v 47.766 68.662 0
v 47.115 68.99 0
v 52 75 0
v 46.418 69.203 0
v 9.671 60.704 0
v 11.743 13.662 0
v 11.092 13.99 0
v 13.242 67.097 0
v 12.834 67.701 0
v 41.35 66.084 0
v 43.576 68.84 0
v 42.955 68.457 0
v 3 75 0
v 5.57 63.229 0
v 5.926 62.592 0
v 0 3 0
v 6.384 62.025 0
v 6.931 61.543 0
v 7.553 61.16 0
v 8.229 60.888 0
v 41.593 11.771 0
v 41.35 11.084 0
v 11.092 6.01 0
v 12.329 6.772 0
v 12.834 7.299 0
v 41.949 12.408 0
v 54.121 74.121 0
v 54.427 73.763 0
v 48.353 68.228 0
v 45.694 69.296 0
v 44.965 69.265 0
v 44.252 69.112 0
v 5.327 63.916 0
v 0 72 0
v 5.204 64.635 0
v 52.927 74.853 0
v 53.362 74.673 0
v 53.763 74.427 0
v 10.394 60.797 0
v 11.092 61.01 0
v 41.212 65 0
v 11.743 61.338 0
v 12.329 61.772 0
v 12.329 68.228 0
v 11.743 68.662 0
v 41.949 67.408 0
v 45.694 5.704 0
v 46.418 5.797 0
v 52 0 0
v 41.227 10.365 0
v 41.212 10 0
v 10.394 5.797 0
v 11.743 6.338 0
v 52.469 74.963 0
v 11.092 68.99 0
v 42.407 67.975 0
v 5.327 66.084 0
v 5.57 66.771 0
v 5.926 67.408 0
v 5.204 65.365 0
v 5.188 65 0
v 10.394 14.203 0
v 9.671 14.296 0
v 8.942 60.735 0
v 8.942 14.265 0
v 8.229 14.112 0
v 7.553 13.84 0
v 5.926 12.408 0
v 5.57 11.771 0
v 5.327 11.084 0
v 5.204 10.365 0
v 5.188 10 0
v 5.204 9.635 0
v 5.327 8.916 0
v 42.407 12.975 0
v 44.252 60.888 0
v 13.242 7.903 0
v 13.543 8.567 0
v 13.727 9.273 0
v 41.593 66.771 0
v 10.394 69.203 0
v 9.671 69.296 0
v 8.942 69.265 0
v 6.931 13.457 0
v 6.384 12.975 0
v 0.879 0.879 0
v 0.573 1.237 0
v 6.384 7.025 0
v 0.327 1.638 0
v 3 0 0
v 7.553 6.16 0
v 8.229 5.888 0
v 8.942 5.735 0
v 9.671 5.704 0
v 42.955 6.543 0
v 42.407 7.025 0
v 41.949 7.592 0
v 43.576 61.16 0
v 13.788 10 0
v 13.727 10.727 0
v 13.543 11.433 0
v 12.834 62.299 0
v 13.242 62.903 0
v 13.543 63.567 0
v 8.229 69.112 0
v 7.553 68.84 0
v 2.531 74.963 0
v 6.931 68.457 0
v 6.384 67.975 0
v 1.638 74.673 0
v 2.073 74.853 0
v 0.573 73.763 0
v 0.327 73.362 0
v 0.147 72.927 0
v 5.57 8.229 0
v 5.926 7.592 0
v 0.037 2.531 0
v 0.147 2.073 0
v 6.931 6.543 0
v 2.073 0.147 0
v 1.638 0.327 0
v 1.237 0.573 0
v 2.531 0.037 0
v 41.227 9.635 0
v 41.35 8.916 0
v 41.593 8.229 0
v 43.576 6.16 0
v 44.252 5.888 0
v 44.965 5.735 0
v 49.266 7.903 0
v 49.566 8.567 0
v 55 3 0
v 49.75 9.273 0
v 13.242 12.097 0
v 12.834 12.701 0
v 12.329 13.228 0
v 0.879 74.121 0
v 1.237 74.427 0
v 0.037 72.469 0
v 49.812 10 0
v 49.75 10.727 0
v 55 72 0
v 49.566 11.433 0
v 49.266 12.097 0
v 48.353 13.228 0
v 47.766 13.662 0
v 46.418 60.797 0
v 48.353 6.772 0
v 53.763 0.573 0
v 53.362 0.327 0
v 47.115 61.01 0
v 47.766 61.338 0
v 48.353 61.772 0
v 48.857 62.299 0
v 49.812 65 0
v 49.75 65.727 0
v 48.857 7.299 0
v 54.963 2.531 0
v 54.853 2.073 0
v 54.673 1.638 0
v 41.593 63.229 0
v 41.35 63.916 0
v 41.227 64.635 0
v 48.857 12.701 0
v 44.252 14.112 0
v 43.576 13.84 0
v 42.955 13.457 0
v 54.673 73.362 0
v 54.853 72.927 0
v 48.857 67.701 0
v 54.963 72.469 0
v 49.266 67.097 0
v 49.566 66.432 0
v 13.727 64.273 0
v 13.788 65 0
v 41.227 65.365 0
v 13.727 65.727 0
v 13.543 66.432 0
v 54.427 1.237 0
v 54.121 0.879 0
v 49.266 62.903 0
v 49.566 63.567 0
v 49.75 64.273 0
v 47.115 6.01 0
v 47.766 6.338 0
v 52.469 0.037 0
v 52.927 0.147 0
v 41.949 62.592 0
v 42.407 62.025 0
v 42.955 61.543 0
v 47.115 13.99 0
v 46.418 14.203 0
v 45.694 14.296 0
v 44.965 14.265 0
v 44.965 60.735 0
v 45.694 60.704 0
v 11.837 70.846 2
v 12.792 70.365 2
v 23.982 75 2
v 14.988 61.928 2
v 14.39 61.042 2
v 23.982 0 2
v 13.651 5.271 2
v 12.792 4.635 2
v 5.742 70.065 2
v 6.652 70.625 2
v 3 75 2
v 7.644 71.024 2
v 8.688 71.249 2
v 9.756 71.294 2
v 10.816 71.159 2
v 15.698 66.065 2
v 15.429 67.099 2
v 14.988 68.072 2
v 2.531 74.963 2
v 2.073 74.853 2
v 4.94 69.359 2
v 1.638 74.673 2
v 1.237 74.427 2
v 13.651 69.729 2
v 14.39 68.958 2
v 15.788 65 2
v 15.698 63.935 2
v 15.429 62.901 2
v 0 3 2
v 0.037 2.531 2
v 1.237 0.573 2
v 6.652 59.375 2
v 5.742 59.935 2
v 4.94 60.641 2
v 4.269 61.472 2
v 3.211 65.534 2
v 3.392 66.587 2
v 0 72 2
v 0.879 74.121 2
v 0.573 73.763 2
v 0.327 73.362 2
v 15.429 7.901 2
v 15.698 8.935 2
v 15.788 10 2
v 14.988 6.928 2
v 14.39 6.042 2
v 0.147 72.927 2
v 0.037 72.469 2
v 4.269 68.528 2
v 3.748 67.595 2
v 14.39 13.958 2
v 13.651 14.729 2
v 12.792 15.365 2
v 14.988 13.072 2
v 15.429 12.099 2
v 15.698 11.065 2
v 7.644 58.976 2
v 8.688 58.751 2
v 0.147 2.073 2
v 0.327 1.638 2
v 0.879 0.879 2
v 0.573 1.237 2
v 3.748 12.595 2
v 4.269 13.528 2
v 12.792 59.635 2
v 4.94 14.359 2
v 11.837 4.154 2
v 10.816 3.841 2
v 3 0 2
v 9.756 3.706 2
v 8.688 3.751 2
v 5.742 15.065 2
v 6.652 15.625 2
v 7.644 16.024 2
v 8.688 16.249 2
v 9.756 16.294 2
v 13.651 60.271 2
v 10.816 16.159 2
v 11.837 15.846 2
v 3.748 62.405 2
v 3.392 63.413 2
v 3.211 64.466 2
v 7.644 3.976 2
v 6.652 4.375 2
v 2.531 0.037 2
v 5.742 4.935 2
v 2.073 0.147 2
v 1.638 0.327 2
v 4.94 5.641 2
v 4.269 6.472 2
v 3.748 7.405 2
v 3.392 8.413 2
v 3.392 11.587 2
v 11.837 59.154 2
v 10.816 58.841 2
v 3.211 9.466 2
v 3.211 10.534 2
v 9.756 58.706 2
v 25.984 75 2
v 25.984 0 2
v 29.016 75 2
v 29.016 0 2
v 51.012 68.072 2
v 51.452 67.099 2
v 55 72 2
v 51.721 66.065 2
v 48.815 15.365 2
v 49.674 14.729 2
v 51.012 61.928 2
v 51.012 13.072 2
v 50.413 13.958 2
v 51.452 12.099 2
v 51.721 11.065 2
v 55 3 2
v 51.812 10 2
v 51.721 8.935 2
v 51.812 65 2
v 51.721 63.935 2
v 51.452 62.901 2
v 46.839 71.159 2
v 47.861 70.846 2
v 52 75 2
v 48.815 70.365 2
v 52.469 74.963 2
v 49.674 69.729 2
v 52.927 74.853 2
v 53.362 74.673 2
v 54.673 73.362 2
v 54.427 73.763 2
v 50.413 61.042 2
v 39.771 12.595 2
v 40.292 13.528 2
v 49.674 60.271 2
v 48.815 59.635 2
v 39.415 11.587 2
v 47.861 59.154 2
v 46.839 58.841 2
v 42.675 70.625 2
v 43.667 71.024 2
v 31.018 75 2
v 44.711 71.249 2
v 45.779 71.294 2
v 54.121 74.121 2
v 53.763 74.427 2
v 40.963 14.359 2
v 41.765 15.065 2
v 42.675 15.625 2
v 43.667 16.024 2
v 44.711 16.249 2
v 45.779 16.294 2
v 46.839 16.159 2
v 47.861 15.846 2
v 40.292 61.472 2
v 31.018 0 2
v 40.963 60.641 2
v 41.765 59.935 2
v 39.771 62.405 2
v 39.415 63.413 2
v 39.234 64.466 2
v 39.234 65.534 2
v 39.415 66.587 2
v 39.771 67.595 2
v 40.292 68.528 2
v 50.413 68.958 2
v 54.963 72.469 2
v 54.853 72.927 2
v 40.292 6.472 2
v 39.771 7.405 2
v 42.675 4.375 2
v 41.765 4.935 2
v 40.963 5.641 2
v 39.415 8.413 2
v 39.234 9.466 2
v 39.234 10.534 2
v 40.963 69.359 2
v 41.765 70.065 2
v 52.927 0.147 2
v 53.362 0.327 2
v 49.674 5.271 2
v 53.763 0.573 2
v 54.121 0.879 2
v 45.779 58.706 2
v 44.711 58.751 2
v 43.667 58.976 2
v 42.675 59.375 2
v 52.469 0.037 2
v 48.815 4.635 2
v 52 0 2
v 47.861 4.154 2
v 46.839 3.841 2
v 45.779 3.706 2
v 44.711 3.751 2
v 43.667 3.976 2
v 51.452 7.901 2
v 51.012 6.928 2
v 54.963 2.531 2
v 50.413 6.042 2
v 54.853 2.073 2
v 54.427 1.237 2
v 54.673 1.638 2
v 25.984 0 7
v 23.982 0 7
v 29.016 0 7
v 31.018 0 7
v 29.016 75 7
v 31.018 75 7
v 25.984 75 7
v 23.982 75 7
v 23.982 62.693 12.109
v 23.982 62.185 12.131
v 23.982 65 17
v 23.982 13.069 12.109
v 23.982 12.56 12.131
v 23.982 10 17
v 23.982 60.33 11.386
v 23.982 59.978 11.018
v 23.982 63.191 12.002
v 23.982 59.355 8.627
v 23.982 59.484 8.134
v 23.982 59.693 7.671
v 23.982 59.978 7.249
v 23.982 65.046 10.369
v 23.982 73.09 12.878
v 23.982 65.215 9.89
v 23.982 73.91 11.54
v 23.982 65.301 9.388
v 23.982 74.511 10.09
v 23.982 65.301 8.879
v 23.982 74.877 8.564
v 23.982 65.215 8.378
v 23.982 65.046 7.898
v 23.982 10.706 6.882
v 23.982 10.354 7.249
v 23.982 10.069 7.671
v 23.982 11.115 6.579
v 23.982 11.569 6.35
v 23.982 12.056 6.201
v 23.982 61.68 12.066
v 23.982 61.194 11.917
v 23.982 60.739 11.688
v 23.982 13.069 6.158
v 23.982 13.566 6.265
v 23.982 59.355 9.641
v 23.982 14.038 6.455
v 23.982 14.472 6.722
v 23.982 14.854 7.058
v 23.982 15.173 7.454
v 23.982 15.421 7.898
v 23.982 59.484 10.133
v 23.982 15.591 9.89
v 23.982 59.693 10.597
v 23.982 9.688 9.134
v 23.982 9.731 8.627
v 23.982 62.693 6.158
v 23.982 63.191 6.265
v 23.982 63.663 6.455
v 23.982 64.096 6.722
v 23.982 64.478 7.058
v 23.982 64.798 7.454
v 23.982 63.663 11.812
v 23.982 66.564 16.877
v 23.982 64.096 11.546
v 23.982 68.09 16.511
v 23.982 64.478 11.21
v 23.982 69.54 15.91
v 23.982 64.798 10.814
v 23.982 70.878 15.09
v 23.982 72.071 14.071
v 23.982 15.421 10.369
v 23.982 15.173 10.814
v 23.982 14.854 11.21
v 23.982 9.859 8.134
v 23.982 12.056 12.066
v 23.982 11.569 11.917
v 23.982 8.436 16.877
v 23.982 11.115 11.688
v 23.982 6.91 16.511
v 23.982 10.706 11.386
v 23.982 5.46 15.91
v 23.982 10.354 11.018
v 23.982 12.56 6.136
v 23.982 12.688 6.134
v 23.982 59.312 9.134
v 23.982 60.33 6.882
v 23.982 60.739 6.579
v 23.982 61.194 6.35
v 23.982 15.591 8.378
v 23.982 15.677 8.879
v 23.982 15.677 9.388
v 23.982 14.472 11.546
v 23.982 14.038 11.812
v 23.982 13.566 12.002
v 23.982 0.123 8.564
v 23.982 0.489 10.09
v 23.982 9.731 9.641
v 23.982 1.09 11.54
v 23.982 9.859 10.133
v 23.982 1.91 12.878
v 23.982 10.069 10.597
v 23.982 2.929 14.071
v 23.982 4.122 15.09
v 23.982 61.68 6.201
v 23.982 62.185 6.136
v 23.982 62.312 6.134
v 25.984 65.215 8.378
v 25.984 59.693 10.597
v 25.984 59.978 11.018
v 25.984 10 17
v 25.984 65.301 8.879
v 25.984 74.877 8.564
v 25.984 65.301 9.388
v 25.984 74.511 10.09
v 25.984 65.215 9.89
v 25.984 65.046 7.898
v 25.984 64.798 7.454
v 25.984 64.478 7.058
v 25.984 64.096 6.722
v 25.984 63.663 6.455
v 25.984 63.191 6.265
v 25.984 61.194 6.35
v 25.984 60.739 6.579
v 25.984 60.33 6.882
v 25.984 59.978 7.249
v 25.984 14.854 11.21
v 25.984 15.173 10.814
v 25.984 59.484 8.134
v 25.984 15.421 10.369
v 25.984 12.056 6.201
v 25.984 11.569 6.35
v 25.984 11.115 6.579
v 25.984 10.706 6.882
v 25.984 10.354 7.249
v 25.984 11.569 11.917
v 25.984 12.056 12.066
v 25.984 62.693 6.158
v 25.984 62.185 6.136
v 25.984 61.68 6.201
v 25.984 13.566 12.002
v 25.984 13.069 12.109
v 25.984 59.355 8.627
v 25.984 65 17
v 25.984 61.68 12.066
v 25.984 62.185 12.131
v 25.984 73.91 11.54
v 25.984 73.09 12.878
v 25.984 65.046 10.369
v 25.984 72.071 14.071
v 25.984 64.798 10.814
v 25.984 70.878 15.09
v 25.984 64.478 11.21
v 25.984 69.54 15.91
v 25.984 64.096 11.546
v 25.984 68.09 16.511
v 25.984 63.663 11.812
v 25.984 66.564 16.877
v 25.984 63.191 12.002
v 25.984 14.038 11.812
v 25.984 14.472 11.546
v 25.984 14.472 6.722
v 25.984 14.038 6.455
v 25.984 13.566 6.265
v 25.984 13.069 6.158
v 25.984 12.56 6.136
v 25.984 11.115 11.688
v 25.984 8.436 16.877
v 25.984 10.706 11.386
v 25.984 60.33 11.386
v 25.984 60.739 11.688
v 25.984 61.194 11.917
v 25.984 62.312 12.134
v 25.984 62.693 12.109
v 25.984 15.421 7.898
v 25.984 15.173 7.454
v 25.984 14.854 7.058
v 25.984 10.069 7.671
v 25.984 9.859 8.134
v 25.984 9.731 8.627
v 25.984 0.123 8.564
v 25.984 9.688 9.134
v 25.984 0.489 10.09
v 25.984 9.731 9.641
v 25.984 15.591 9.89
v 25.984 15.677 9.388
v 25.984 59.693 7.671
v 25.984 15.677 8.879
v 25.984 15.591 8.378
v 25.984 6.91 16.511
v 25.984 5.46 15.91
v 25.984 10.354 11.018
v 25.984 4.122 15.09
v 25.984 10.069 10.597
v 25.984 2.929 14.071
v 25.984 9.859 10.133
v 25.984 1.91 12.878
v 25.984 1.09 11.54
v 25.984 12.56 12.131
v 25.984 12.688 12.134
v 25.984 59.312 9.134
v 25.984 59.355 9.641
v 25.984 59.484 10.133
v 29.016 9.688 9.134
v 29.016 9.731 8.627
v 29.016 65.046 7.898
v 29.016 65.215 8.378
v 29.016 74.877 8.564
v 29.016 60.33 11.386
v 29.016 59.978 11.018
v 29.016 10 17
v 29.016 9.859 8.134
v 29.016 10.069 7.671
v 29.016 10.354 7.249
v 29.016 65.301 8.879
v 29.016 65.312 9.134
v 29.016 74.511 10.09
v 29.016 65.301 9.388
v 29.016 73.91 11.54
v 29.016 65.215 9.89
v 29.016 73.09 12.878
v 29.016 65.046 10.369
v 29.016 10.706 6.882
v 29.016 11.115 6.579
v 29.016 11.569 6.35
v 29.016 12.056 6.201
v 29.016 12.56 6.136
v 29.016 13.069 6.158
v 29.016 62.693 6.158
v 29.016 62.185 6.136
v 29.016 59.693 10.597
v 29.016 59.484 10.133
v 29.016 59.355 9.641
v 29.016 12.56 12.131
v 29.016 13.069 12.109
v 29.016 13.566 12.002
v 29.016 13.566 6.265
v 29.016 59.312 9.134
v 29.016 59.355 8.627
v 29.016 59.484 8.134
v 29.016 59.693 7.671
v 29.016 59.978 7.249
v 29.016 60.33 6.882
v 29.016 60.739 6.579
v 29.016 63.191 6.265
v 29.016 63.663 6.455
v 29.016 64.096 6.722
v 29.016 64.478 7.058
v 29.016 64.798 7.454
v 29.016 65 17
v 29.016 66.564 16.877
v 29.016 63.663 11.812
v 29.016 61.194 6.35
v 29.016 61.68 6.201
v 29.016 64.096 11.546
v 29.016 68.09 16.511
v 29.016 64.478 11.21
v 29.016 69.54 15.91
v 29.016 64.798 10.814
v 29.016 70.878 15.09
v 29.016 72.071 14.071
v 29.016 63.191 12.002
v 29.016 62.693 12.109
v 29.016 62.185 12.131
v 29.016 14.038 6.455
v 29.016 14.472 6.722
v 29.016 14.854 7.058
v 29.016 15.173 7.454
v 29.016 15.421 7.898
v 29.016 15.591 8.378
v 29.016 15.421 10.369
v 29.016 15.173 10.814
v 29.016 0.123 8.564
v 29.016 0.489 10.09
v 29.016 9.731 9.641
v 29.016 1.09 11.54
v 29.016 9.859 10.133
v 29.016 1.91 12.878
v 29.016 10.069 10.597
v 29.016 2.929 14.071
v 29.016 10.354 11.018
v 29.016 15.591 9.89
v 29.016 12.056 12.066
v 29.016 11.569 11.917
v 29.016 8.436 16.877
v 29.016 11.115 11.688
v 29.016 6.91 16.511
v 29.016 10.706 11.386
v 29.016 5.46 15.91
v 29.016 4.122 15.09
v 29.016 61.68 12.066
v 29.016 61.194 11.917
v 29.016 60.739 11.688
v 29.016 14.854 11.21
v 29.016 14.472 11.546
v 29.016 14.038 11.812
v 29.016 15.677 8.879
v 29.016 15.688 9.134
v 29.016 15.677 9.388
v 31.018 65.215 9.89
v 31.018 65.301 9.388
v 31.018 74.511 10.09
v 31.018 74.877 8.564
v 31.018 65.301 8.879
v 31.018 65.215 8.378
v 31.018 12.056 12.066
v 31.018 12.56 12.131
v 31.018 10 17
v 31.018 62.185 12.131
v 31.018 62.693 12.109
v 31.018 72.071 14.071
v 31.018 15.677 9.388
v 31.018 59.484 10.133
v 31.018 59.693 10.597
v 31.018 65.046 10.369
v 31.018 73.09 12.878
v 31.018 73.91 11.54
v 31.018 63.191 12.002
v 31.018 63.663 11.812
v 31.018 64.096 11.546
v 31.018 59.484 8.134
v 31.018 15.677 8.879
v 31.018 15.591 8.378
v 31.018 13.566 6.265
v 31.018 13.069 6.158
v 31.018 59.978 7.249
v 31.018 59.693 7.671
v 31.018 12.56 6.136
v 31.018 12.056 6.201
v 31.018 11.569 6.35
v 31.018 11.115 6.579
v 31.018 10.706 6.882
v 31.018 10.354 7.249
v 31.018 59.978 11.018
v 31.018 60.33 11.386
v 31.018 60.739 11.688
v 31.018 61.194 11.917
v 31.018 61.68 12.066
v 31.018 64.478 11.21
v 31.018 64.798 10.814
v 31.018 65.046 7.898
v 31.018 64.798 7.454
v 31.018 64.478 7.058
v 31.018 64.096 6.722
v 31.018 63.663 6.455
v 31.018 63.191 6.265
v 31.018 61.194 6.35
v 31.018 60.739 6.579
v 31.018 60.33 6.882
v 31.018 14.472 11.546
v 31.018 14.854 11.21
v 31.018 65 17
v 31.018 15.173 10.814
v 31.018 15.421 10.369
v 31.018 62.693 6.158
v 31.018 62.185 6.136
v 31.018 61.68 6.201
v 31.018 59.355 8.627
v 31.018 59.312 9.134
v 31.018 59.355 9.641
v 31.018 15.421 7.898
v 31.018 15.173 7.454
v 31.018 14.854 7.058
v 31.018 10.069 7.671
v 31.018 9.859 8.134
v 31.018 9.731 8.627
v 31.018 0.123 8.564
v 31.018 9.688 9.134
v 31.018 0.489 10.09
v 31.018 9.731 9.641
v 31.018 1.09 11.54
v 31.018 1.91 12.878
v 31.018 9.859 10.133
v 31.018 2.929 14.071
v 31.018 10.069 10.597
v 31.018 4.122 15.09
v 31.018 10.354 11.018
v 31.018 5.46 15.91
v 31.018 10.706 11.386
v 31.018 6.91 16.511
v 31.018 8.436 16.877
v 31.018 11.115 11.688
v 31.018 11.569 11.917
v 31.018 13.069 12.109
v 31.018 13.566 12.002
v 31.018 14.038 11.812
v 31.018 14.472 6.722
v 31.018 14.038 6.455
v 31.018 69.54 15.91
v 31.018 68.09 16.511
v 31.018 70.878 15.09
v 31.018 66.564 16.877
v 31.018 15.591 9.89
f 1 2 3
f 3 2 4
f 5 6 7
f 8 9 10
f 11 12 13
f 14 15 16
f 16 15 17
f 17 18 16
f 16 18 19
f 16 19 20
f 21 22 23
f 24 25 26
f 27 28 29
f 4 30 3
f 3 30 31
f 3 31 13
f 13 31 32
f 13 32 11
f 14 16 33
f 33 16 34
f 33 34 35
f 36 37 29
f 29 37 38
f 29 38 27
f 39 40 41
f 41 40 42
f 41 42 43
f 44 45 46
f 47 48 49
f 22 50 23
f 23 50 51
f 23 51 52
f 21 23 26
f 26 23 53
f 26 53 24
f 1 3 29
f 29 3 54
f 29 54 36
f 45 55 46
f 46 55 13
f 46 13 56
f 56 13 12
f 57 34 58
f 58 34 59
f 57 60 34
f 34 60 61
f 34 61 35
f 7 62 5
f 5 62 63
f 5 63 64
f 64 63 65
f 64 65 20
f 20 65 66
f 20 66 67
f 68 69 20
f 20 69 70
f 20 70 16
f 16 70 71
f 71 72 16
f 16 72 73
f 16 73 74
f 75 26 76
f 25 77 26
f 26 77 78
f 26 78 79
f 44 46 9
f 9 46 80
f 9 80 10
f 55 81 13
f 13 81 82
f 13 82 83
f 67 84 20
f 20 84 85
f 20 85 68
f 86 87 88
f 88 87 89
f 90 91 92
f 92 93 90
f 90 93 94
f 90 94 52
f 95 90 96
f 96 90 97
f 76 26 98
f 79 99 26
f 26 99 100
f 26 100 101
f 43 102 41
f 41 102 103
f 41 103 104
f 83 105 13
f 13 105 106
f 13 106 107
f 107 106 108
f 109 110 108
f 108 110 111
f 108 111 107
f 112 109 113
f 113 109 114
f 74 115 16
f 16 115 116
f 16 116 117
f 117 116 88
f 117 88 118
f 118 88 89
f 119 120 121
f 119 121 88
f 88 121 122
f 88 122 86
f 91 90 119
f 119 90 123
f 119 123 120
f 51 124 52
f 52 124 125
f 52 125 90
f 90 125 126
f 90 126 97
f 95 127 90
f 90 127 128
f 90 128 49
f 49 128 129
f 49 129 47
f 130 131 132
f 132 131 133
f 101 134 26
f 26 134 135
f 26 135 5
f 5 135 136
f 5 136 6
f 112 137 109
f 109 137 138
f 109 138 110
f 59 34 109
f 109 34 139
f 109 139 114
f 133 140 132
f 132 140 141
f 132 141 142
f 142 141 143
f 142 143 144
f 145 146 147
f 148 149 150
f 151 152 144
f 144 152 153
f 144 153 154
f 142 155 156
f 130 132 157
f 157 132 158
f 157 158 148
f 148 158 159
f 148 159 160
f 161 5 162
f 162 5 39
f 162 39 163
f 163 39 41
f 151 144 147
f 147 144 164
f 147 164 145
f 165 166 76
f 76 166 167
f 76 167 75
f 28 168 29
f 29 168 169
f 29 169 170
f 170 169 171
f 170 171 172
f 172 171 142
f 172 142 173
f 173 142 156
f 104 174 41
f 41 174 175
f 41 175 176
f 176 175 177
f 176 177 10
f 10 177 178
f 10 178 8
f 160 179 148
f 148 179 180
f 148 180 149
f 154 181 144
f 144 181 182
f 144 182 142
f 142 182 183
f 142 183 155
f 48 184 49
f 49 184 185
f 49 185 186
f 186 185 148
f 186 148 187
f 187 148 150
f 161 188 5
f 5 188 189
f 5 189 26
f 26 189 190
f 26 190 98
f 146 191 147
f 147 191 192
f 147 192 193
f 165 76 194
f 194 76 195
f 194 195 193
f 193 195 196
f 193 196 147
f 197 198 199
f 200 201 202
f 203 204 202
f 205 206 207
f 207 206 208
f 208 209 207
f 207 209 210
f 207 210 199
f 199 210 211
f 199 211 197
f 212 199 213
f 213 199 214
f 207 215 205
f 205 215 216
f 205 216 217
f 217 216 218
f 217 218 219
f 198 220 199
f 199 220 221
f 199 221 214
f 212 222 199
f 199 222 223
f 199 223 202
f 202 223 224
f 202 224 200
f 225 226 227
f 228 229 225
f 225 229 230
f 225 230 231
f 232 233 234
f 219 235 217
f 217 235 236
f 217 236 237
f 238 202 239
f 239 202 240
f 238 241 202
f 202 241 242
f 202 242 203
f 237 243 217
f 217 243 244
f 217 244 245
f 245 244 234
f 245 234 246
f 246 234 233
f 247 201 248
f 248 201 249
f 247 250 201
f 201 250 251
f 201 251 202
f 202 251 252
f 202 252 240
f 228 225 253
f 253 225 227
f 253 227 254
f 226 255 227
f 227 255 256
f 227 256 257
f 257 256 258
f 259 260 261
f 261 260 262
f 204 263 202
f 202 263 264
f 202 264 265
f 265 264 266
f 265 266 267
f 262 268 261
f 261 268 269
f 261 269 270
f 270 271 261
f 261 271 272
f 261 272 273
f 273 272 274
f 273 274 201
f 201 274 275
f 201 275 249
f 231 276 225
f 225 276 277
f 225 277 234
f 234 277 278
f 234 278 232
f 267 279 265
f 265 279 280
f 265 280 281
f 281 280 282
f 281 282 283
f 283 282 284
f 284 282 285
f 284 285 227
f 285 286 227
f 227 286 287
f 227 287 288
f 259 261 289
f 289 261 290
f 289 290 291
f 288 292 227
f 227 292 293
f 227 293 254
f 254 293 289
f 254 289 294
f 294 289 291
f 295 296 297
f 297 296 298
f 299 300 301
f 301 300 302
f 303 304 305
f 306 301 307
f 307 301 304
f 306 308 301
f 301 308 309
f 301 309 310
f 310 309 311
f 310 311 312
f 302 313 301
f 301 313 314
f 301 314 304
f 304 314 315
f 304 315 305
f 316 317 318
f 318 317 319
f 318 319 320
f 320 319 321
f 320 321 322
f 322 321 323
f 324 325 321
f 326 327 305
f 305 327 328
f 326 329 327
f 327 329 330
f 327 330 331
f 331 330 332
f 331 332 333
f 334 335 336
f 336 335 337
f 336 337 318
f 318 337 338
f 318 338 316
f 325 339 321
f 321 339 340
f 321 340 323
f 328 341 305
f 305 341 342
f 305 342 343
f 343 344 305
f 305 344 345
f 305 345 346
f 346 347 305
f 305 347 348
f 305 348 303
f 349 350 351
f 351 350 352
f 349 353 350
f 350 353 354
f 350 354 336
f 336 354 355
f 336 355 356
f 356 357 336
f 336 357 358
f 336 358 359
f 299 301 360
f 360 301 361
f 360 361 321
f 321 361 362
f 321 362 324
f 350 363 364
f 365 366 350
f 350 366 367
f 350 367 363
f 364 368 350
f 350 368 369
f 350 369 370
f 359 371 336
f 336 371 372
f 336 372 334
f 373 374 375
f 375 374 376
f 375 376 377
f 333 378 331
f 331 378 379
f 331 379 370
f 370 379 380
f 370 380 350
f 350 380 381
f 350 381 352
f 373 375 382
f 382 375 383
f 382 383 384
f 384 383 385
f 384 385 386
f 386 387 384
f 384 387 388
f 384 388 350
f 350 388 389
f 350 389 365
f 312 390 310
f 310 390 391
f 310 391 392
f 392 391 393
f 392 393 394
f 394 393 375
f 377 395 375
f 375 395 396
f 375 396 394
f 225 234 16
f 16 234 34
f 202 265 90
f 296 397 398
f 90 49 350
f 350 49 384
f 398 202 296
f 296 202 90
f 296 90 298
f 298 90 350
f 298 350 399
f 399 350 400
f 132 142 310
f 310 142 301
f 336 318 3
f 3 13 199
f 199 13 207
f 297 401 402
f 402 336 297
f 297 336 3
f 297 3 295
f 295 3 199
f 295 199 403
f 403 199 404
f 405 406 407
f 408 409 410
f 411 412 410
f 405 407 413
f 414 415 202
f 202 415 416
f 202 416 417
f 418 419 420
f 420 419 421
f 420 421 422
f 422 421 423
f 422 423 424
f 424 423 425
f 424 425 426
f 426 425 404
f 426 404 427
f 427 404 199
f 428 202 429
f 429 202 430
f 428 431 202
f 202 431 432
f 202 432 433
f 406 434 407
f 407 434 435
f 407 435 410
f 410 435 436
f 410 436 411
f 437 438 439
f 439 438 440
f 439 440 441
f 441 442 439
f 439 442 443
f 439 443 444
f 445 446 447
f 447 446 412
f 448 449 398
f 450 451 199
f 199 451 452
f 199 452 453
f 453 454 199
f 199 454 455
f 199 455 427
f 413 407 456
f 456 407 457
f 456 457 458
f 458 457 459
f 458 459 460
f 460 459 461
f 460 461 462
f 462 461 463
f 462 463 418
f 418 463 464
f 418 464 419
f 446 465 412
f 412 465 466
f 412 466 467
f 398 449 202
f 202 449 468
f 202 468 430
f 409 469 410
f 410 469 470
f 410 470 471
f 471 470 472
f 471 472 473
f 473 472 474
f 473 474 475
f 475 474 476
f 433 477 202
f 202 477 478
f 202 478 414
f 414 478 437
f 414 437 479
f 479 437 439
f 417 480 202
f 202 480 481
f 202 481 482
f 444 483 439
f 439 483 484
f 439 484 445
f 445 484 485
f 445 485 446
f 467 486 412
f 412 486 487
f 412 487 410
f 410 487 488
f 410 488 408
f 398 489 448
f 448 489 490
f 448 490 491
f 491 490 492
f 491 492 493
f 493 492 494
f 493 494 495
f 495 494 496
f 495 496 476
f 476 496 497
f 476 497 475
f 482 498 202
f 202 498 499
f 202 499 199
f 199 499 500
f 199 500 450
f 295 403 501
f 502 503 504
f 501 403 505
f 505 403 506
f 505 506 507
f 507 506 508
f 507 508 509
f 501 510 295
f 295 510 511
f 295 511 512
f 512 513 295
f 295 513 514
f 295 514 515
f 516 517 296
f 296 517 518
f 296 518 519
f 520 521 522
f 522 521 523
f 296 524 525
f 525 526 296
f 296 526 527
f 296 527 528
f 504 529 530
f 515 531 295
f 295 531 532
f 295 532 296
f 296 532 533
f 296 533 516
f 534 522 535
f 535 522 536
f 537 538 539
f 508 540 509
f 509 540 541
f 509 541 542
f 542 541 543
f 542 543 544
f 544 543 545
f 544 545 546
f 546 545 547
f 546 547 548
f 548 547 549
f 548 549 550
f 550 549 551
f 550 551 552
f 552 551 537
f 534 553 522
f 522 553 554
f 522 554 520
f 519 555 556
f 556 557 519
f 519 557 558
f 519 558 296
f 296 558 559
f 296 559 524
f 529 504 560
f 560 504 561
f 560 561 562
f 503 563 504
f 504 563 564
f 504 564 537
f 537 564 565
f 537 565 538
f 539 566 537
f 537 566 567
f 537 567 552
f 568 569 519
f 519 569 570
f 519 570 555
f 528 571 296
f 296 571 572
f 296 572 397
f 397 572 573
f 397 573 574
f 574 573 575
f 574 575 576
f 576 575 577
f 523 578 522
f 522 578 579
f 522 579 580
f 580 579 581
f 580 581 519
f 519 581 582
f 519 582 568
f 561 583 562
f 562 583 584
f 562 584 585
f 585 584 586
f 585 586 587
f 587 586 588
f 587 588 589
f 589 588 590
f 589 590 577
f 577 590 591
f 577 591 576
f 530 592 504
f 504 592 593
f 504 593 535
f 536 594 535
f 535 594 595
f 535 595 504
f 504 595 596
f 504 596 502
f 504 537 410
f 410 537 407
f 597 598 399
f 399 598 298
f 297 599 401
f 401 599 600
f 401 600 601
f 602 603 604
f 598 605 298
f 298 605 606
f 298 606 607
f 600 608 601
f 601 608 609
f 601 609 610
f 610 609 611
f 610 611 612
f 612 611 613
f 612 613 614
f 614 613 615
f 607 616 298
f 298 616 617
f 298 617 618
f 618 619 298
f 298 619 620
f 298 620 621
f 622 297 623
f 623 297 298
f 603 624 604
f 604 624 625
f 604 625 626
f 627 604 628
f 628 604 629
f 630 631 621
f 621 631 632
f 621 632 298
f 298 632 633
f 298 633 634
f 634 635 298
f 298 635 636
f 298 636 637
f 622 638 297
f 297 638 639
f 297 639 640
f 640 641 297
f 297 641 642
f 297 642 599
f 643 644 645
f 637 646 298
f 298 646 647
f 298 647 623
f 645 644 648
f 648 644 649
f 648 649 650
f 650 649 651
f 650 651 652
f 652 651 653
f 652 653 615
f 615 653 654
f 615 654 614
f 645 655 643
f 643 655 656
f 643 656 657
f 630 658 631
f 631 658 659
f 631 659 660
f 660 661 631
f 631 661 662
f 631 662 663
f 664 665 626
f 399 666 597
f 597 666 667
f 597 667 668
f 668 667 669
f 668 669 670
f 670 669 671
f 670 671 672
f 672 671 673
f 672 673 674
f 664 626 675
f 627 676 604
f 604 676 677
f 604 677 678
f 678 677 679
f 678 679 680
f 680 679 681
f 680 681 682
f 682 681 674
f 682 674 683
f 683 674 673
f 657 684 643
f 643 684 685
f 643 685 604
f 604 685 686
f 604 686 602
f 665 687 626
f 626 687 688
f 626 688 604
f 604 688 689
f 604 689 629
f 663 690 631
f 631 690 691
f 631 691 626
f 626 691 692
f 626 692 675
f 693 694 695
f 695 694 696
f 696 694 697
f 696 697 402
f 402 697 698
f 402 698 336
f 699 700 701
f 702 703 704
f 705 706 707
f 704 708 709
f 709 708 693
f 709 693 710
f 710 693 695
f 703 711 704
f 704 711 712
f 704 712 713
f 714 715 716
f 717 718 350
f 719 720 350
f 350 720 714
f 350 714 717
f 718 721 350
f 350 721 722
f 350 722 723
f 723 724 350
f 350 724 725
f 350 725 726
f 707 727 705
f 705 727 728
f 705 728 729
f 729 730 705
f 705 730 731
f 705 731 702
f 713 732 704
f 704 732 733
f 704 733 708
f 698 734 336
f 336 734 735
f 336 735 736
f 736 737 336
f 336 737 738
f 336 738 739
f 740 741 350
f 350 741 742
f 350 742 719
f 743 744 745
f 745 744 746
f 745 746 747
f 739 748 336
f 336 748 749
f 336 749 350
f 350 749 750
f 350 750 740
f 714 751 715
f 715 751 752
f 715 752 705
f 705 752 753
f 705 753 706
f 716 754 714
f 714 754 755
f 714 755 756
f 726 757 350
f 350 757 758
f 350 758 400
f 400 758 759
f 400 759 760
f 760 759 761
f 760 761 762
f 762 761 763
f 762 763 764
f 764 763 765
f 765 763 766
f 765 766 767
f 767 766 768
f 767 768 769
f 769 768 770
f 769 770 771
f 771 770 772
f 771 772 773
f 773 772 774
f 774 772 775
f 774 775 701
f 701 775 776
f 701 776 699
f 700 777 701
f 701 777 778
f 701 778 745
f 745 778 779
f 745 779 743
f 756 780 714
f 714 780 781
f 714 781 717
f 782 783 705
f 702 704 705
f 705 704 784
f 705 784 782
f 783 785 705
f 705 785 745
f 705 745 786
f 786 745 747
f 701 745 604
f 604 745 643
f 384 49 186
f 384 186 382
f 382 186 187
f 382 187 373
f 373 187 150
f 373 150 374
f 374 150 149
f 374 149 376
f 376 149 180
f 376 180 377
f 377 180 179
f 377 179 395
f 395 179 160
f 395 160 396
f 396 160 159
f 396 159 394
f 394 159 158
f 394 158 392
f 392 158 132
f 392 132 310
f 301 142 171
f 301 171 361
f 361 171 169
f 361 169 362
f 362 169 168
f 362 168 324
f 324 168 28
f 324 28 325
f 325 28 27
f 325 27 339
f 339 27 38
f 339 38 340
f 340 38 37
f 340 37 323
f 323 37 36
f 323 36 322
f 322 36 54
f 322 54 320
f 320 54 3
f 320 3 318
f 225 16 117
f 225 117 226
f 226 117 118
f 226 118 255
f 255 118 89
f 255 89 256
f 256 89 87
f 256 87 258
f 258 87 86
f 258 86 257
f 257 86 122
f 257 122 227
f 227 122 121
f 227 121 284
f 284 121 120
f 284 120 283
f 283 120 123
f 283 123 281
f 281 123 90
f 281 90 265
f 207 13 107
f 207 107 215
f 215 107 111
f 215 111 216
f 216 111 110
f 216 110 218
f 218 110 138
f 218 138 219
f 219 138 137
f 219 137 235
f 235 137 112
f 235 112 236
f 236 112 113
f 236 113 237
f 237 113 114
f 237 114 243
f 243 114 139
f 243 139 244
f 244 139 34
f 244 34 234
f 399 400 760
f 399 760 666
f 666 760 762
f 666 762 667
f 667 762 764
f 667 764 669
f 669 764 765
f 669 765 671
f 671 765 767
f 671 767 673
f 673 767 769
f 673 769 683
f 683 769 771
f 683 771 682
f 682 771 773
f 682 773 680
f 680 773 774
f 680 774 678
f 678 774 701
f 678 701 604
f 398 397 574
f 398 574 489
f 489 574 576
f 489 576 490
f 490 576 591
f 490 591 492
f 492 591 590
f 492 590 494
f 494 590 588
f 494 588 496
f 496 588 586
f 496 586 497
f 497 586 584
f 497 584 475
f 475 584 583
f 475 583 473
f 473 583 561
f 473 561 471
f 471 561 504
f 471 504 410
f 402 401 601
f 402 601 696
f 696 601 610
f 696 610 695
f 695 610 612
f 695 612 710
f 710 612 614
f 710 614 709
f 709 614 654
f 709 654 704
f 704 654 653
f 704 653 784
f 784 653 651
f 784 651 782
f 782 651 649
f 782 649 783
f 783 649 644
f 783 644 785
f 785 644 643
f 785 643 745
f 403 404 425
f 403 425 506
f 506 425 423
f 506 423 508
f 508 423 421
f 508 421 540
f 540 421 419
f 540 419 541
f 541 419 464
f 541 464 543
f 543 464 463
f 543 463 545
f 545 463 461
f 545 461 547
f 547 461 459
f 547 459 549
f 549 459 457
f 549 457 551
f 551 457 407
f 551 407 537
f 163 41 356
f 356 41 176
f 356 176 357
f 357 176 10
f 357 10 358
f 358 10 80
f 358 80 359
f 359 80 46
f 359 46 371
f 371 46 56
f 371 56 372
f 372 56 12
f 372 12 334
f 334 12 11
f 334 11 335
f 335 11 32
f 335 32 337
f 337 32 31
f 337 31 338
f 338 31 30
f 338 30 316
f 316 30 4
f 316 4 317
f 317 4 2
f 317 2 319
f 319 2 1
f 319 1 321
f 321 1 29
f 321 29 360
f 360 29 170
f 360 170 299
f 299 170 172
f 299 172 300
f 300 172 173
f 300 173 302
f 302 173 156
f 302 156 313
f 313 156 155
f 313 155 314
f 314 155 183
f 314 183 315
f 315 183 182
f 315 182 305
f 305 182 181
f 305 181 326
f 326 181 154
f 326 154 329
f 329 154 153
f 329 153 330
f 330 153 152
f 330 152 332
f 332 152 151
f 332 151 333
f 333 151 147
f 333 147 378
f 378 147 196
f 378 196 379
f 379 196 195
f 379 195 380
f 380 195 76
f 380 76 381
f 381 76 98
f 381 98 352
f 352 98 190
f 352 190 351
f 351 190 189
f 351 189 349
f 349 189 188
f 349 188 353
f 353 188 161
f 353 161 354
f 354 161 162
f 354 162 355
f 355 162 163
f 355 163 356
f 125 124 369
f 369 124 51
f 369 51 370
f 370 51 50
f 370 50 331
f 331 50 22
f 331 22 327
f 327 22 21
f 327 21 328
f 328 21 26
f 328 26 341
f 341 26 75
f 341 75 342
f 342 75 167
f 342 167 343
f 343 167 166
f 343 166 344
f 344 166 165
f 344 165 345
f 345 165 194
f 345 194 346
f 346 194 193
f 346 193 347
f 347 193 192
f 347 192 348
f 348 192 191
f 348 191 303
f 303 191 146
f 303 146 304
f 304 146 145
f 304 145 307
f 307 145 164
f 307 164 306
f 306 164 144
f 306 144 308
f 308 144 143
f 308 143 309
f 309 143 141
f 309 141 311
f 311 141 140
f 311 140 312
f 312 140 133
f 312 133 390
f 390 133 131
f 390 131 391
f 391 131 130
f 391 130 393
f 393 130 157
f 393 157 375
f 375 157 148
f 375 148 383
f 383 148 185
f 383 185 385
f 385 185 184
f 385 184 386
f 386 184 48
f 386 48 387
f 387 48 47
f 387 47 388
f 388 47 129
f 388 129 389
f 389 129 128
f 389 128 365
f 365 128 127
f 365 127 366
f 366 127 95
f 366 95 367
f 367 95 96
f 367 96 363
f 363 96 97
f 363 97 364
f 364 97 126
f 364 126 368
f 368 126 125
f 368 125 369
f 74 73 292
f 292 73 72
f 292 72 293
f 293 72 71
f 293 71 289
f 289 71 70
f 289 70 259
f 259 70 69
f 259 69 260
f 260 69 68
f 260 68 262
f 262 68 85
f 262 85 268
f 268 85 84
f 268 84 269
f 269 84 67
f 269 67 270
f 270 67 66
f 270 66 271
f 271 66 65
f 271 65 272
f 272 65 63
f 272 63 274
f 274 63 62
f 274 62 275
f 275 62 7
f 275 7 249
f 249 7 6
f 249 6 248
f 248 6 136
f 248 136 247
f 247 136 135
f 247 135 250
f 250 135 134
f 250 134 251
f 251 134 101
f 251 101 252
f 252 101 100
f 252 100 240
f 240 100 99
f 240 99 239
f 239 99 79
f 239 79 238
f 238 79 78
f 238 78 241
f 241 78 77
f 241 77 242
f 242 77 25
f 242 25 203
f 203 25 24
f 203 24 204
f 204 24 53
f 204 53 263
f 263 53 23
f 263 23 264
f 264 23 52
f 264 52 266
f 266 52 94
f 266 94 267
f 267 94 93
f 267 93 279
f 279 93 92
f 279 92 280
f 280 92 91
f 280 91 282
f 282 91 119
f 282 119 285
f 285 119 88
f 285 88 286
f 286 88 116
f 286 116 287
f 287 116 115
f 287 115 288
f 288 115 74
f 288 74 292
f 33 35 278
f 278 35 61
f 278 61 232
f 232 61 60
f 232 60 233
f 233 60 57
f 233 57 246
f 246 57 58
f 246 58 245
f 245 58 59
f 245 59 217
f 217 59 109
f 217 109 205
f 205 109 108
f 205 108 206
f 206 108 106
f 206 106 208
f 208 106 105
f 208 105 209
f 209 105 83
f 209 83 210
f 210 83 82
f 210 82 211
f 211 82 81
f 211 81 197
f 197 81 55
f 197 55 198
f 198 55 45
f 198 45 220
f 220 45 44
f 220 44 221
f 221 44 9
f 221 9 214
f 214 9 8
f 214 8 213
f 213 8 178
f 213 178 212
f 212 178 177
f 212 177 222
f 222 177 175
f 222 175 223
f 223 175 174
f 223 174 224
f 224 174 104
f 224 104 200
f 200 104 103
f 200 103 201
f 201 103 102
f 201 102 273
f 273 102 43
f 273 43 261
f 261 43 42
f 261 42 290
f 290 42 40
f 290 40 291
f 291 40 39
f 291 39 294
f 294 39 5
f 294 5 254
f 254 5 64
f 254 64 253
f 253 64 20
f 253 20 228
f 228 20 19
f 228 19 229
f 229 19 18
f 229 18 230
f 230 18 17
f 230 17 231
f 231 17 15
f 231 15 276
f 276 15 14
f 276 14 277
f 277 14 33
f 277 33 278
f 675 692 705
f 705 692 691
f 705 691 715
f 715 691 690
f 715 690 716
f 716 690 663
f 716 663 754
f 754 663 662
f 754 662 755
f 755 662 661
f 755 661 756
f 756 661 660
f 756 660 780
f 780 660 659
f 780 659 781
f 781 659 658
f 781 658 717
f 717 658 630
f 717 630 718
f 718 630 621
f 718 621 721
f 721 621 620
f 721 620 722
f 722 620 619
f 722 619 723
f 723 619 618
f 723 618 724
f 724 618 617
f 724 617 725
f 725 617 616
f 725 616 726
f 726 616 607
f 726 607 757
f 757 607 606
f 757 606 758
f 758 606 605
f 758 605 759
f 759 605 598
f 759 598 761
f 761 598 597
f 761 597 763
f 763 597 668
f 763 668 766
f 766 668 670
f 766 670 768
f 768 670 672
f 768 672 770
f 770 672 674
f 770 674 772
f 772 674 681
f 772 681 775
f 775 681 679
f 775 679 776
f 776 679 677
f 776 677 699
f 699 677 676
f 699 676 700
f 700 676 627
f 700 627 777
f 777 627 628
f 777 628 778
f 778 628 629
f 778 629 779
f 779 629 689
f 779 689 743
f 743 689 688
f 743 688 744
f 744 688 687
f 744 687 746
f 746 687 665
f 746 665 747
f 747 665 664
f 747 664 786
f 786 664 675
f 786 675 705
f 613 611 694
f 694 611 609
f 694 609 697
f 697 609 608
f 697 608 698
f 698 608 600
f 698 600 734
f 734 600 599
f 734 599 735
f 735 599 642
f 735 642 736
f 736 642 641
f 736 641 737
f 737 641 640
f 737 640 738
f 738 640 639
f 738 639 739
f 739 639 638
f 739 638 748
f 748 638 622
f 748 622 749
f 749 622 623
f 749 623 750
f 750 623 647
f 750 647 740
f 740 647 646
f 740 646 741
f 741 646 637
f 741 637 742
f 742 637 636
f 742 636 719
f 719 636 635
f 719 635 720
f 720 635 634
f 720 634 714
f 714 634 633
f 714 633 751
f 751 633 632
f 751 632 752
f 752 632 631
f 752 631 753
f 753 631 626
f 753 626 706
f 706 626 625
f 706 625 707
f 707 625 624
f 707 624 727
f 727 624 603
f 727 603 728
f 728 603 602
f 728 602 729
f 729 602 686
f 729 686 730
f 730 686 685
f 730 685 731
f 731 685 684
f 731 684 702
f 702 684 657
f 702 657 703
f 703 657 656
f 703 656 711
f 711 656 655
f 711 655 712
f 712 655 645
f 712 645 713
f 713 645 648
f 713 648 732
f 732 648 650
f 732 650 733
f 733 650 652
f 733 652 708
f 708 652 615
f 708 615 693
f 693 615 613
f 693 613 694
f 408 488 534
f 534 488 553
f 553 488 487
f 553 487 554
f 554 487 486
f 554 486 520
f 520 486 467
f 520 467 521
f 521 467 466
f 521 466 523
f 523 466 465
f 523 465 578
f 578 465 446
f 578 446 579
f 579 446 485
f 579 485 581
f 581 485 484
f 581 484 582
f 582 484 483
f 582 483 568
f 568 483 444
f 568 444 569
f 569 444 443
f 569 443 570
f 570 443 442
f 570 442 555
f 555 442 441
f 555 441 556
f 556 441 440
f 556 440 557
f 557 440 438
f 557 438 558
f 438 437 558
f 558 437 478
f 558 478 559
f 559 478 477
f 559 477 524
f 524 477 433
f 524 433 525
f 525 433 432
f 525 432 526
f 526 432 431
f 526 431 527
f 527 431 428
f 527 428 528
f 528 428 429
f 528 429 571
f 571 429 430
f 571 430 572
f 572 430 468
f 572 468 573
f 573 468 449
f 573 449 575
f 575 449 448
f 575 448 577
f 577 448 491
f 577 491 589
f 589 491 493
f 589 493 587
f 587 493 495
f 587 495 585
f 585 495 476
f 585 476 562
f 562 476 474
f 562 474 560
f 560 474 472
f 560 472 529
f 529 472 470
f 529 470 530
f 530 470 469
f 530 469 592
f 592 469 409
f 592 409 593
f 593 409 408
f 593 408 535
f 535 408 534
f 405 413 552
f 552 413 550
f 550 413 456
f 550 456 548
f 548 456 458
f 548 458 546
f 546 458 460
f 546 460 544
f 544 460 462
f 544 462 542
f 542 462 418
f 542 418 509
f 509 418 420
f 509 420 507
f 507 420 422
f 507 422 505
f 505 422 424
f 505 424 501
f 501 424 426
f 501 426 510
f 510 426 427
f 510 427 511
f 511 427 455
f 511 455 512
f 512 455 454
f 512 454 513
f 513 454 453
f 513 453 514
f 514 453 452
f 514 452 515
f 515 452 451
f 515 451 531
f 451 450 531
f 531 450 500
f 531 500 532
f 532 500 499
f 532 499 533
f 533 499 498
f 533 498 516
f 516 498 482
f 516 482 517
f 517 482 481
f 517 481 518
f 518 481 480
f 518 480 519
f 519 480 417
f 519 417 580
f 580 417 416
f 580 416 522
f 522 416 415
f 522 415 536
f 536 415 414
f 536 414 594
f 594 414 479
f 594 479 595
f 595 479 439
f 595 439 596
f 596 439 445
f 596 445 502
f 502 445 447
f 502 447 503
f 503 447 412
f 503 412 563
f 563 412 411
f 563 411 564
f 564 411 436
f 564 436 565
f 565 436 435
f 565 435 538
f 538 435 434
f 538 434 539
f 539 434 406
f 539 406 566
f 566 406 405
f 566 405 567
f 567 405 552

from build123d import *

# Parameters (mm, degrees)
ESQUISSE1_W                  = 55
ESQUISSE1_H                  = 75
BOSS_EXTRU_1_DEPTH           = 2
ESQUISSE2_W                  = 2.002378602
ESQUISSE2_H                  = 75
BOSS_EXTRU_2_DEPTH           = 15
CONG_1_R                     = 3
CONG_2_R                     = 10
ENL_V_MAT_EXTRU_1_DEPTH      = 10
ENL_V_MAT_EXTRU_1_DEPTH_BACK = 83.194496151
ESQUISSE6_R                  = 3


# Read off the part's stored shape, not the designer's step: Fraisage pour vis à tête fraisée M61
with BuildPart() as part:
    # Esquisse1 → Boss.-Extru.1 (new body)
    with BuildSketch(Plane.XY):
        with Locations((27.5, 37.5)):
            Rectangle(ESQUISSE1_W, ESQUISSE1_H)
    extrude(amount=BOSS_EXTRU_1_DEPTH)

    # Esquisse2 → Boss.-Extru.2 (add)
    with BuildSketch(Plane.XY.offset(2)):
        with Locations((30.017308917, 37.5)):
            Rectangle(ESQUISSE2_W, ESQUISSE2_H)
        with Locations((24.982691083, 37.5)):
            Rectangle(ESQUISSE2_W, ESQUISSE2_H)
    extrude(amount=BOSS_EXTRU_2_DEPTH)

    # Congé1
    cong_1_edges = [part.edges().sort_by_distance(p)[0] for p in [
        (0, 75, 1),
        (55, 75, 1),
        (55, 0, 1),
        (0, 0, 1),
    ]]
    fillet(cong_1_edges, radius=CONG_1_R)

    # Congé2
    cong_2_edges = [part.edges().sort_by_distance(p)[0] for p in [
        (24.982691083, 75, 17),
        (24.982691083, 0, 17),
        (30.017308917, 0, 17),
        (30.017308917, 75, 17),
    ]]
    fillet(cong_2_edges, radius=CONG_2_R)

    # Fraisage pour vis à tête fraisée M61 out → Fraisage pour vis à tête fraisée M61 (revolve, cut)
    with BuildSketch(Plane(origin=(45.511606252, 65, 0), x_dir=(1, 0, 0), z_dir=(0, -1, 0))):
        Polygon((6.3, 2), (0, 2), (0, 0), (4.3, 0), align=None)
    revolve(axis=Axis((45.511606252, 65, 0), (0, 0, 1)), mode=Mode.SUBTRACT)

    # Fraisage pour vis _ t_te frais_e M61 2 o → Fraisage pour vis _ t_te frais_e M61 2 (revolve, cut)
    with BuildSketch(Plane(origin=(45.511606252, 10, 0), x_dir=(1, 0, 0), z_dir=(0, -1, 0))):
        Polygon((6.3, 2), (0, 2), (0, 0), (4.3, 0), align=None)
    revolve(axis=Axis((45.511606252, 10, 0), (0, 0, 1)), mode=Mode.SUBTRACT)

    # Fraisage pour vis _ t_te frais_e M61 3 o → Fraisage pour vis _ t_te frais_e M61 3 (revolve, cut)
    with BuildSketch(Plane(origin=(9.488393748, 10, 0), x_dir=(1, 0, 0), z_dir=(0, -1, 0))):
        Polygon((6.3, 2), (0, 2), (0, 0), (4.3, 0), align=None)
    revolve(axis=Axis((9.488393748, 10, 0), (0, 0, 1)), mode=Mode.SUBTRACT)

    # Fraisage pour vis _ t_te frais_e M61 4 o → Fraisage pour vis _ t_te frais_e M61 4 (revolve, cut)
    with BuildSketch(Plane(origin=(9.488393748, 65, 0), x_dir=(1, 0, 0), z_dir=(0, -1, 0))):
        Polygon((6.3, 2), (0, 2), (0, 0), (4.3, 0), align=None)
    revolve(axis=Axis((9.488393748, 65, 0), (0, 0, 1)), mode=Mode.SUBTRACT)

    # Esquisse6 → Enlèv. mat.-Extru.1 (cut, two sides: drawn at the far end of the back side and taken through both)
    with BuildSketch(Plane(origin=(25.983880384, 0, 0), x_dir=(0, 0, -1), z_dir=(1, 0, 0)).offset(-ENL_V_MAT_EXTRU_1_DEPTH_BACK)):
        with Locations(Location((-9.133710771, 62.312214024, 0), (0, 0, 270))):
            Circle(ESQUISSE6_R)
        with Locations(Location((-9.133710771, 12.687785976, 0), (0, 0, 270))):
            Circle(ESQUISSE6_R)
    extrude(amount=ENL_V_MAT_EXTRU_1_DEPTH + ENL_V_MAT_EXTRU_1_DEPTH_BACK, mode=Mode.SUBTRACT)


solid = part.part
